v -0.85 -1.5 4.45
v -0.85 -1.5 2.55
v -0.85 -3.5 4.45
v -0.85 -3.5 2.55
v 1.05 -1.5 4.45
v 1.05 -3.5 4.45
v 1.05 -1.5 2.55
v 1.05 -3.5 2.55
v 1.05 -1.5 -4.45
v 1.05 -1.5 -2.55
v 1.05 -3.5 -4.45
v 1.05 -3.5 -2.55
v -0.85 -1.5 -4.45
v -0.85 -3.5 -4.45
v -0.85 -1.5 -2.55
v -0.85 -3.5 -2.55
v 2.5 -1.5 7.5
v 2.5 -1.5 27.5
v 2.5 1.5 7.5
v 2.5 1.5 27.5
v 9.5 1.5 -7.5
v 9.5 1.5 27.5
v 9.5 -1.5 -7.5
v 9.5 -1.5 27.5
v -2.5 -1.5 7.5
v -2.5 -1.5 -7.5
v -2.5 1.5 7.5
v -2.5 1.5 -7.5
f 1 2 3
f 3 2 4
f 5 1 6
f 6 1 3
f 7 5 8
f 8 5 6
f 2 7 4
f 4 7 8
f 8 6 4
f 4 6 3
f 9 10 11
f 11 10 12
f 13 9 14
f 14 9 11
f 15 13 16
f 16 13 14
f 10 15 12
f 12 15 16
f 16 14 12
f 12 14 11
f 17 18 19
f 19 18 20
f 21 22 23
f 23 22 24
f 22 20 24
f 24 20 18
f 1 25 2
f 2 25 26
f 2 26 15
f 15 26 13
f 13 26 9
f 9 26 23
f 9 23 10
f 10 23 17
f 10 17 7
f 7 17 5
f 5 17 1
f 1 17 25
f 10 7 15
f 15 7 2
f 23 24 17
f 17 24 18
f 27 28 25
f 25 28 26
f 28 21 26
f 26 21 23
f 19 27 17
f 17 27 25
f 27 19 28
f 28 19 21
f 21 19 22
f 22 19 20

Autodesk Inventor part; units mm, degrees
ref_plane "YZ Plane" through (0, 0, 0) normal (1, 0, 0) x (0, 1, 0)
ref_plane "XZ Plane" through (0, 0, 0) normal (0, 1, 0) x (-1, 0, 0)
ref_plane "XY Plane" through (0, 0, 0) normal (0, 0, 1) x (1, 0, 0)
sketch "Sketch1" plane through (0, 0, 0) normal (0, 1, 0) x (-1, 0, 0)
  line L0 (-2.5, 7.5) -> (2.5, 7.5)
  line L1 (2.5, 7.5) -> (2.5, -7.5)
  line L2 (2.5, -7.5) -> (-2.5, -7.5)
  line L3 (-2.5, -7.5) -> (-2.5, 7.5)
  line L4 (-2.5, 7.5) -> (2.5, -7.5) construction
  line L5 (2.5, 7.5) -> (-2.5, -7.5) construction
  line L6 (-2.5, -7.5) -> (-9.5, -7.5)
  line L7 (-9.5, -7.5) -> (-9.5, 27.5)
  line L8 (-9.5, 27.5) -> (-2.5, 27.5)
  line L9 (-2.5, 27.5) -> (-2.5, -7.5)
  point P0 (0, 0)
  dimension "d0" = 5
  dimension "d1" = 15
  dimension "d13" = 35
  dimension "d14" = 7
extrude "Extrusion1" add sketch "Sketch1" along normal mid plane 3
sketch "Sketch3" plane through (0, -1.5, 0) normal (0, -1, 0) x (1, 0, 0)
  line L0 (1.1, 4.5) -> (-0.9, 4.5) construction
  line L1 (-0.9, 4.5) -> (-0.9, 2.5) construction
  line L2 (-0.9, 2.5) -> (1.1, 2.5) construction
  line L3 (1.1, 2.5) -> (1.1, 4.5) construction
  line L4 (1.1, 4.5) -> (-0.9, 2.5) construction
  line L5 (-0.9, 4.5) -> (1.1, 2.5) construction
  line L6 (1.1, -2.5) -> (-0.9, -2.5) construction
  line L7 (-0.9, -2.5) -> (-0.9, -4.5) construction
  line L8 (-0.9, -4.5) -> (1.1, -4.5) construction
  line L9 (1.1, -4.5) -> (1.1, -2.5) construction
  line L10 (1.1, -2.5) -> (-0.9, -4.5) construction
  line L11 (-0.9, -2.5) -> (1.1, -4.5) construction
  line L12 (0.1, 3.5) -> (0.1, -3.5) construction
  line L13 (-2.5, -7.5) -> (9.5, -7.5) construction
  line L14 (1.05, 2.55) -> (-0.85, 2.55)
  line L15 (-0.85, 2.55) -> (-0.85, 4.45)
  line L16 (-0.85, 4.45) -> (1.05, 4.45)
  line L17 (1.05, 4.45) -> (1.05, 2.55)
  line L18 (-0.85, -2.55) -> (1.05, -2.55)
  line L19 (1.05, -2.55) -> (1.05, -4.45)
  line L20 (1.05, -4.45) -> (-0.85, -4.45)
  line L21 (-0.85, -4.45) -> (-0.85, -2.55)
  line L22 (-2.5, 7.5) -> (-2.5, -7.5) projected
  point P0 (0, 0)
  point P1 (0.1, 0)
  dimension "d7" = 2
  dimension "d8" = 7
  dimension "d11" = 0.05
  dimension "d12" = 0.05
  dimension "d18" = 2.6
extrude "Extrusion3" add sketch "Sketch3" along normal blind 2
properties part number "RemovableAlignmentPiece"
